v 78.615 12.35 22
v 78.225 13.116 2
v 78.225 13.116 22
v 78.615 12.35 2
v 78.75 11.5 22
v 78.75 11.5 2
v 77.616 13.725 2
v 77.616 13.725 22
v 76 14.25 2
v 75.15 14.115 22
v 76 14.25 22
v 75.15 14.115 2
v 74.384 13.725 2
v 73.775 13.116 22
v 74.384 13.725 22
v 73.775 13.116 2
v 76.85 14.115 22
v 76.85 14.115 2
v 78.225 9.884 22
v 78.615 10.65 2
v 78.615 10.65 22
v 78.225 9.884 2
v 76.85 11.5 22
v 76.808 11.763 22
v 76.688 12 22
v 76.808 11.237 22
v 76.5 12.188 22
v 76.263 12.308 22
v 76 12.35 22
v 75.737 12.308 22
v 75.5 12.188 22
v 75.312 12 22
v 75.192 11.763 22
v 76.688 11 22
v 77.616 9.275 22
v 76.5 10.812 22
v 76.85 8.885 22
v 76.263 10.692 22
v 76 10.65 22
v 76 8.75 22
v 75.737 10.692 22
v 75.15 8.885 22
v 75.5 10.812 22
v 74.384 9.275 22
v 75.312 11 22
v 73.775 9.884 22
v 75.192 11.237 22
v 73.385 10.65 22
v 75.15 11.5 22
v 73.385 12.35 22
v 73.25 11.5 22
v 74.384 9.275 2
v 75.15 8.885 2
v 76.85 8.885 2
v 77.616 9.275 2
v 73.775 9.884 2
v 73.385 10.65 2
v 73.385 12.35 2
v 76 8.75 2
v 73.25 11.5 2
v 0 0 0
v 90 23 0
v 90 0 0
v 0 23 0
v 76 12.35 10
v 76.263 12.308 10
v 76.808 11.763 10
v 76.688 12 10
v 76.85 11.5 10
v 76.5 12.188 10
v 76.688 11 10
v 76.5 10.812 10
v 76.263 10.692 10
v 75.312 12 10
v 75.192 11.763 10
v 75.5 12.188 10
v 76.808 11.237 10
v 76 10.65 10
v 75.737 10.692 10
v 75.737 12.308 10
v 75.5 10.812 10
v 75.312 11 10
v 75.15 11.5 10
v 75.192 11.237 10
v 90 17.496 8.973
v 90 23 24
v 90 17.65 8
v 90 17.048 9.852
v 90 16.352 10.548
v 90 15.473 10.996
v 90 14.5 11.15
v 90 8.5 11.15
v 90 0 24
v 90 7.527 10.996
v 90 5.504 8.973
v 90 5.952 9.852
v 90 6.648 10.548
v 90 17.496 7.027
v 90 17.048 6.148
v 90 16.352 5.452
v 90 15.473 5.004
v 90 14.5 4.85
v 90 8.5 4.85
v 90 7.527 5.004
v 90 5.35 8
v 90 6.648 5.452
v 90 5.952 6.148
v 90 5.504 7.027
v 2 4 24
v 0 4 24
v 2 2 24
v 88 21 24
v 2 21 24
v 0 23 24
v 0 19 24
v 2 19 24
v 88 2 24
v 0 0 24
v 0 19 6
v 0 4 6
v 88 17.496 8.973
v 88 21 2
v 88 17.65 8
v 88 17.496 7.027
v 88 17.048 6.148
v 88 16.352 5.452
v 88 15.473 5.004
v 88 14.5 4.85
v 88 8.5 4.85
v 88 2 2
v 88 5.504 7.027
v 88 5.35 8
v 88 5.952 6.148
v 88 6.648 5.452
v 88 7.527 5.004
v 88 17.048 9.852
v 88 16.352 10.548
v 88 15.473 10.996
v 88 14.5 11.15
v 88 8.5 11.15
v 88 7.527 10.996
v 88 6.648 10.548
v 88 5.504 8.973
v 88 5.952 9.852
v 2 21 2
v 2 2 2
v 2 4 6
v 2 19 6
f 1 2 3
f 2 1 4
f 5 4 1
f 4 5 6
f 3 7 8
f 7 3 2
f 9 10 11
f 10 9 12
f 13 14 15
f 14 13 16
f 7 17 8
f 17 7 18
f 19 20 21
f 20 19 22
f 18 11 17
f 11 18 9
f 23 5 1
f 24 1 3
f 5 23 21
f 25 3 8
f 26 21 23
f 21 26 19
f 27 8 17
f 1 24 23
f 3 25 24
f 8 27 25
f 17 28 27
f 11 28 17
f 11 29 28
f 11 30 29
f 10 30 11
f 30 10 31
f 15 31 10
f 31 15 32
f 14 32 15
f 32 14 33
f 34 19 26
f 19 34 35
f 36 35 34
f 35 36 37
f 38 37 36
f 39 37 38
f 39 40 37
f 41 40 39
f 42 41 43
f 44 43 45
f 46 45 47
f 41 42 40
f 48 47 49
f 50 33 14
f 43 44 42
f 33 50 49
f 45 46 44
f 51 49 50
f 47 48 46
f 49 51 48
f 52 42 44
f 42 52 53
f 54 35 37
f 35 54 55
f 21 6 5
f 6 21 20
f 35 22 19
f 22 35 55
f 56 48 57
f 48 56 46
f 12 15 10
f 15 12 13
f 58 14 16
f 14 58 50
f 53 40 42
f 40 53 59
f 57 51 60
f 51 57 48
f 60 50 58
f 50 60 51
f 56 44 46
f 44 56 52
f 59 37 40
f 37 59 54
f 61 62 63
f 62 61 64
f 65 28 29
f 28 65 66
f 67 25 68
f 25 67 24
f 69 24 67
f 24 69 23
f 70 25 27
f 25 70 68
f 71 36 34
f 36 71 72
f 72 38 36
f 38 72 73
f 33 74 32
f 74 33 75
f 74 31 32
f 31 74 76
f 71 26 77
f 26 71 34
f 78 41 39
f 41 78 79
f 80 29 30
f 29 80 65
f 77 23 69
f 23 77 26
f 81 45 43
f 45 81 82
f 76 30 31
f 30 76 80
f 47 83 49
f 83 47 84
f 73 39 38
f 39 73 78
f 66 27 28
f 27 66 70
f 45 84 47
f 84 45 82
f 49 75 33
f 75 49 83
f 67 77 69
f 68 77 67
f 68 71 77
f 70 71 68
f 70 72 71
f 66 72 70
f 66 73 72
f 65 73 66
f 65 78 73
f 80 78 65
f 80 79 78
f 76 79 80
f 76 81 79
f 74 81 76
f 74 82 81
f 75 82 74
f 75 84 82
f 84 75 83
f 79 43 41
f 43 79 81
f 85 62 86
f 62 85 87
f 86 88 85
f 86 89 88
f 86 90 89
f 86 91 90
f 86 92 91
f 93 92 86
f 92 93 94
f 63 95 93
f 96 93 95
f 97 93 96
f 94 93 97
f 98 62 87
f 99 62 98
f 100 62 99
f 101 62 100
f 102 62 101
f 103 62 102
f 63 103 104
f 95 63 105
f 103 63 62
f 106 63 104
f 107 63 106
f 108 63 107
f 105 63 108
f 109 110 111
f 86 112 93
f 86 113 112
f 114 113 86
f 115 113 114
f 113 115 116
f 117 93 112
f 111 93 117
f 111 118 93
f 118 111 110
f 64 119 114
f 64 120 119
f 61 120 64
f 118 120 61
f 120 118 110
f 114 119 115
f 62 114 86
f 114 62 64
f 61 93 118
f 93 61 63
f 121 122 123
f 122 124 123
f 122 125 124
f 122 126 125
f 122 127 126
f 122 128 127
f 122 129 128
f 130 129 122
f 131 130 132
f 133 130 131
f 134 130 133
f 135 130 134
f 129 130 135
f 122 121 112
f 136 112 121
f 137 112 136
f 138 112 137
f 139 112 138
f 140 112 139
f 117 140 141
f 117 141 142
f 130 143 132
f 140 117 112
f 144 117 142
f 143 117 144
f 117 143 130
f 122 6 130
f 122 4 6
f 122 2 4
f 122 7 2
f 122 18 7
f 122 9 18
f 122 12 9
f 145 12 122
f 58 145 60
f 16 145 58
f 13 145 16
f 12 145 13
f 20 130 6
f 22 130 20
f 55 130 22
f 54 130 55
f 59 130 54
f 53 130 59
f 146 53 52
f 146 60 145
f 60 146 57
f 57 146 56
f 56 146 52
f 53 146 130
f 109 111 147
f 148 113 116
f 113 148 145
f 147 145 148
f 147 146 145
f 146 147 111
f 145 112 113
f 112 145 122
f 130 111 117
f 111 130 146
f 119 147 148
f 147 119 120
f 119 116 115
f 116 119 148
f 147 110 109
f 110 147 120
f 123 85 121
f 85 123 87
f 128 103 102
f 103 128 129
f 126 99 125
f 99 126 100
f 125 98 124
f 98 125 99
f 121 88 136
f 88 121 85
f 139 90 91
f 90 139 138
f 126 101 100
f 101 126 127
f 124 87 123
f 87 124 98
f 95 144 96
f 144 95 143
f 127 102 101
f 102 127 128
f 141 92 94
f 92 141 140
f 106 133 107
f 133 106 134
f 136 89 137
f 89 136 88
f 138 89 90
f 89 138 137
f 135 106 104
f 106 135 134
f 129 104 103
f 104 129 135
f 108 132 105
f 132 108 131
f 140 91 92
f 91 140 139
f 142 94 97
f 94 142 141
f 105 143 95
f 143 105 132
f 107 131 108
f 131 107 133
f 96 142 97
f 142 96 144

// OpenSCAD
wall = 2;

difference() {
  cube([90, 19 + 2*wall, 20 + 2*wall]);

  // general cutout
  translate([wall, wall, wall])
  cube([90 - 2*wall, 19, 30]);

  // USB
  translate([-1, wall+2, wall+4])
  cube([30, 19-4, 30]);

  // cabke hole
  color("red")
  hull()
  for (y = [-3, +3]) {
    translate([76, 19/2 + wall + y, 8])
    rotate([0, 90, 0])
    cylinder(20, d=6.3, $fn=20);
  }
}

// screw mount
difference() {
  color("red")
  translate([76, 19/2 + wall, 0])
  cylinder(20 + wall, d=5.5, $fn=20);
  color("white")
  translate([76, 19/2 + wall, 10])
  cylinder(20 + wall, d=1.7, $fn=20);
}
